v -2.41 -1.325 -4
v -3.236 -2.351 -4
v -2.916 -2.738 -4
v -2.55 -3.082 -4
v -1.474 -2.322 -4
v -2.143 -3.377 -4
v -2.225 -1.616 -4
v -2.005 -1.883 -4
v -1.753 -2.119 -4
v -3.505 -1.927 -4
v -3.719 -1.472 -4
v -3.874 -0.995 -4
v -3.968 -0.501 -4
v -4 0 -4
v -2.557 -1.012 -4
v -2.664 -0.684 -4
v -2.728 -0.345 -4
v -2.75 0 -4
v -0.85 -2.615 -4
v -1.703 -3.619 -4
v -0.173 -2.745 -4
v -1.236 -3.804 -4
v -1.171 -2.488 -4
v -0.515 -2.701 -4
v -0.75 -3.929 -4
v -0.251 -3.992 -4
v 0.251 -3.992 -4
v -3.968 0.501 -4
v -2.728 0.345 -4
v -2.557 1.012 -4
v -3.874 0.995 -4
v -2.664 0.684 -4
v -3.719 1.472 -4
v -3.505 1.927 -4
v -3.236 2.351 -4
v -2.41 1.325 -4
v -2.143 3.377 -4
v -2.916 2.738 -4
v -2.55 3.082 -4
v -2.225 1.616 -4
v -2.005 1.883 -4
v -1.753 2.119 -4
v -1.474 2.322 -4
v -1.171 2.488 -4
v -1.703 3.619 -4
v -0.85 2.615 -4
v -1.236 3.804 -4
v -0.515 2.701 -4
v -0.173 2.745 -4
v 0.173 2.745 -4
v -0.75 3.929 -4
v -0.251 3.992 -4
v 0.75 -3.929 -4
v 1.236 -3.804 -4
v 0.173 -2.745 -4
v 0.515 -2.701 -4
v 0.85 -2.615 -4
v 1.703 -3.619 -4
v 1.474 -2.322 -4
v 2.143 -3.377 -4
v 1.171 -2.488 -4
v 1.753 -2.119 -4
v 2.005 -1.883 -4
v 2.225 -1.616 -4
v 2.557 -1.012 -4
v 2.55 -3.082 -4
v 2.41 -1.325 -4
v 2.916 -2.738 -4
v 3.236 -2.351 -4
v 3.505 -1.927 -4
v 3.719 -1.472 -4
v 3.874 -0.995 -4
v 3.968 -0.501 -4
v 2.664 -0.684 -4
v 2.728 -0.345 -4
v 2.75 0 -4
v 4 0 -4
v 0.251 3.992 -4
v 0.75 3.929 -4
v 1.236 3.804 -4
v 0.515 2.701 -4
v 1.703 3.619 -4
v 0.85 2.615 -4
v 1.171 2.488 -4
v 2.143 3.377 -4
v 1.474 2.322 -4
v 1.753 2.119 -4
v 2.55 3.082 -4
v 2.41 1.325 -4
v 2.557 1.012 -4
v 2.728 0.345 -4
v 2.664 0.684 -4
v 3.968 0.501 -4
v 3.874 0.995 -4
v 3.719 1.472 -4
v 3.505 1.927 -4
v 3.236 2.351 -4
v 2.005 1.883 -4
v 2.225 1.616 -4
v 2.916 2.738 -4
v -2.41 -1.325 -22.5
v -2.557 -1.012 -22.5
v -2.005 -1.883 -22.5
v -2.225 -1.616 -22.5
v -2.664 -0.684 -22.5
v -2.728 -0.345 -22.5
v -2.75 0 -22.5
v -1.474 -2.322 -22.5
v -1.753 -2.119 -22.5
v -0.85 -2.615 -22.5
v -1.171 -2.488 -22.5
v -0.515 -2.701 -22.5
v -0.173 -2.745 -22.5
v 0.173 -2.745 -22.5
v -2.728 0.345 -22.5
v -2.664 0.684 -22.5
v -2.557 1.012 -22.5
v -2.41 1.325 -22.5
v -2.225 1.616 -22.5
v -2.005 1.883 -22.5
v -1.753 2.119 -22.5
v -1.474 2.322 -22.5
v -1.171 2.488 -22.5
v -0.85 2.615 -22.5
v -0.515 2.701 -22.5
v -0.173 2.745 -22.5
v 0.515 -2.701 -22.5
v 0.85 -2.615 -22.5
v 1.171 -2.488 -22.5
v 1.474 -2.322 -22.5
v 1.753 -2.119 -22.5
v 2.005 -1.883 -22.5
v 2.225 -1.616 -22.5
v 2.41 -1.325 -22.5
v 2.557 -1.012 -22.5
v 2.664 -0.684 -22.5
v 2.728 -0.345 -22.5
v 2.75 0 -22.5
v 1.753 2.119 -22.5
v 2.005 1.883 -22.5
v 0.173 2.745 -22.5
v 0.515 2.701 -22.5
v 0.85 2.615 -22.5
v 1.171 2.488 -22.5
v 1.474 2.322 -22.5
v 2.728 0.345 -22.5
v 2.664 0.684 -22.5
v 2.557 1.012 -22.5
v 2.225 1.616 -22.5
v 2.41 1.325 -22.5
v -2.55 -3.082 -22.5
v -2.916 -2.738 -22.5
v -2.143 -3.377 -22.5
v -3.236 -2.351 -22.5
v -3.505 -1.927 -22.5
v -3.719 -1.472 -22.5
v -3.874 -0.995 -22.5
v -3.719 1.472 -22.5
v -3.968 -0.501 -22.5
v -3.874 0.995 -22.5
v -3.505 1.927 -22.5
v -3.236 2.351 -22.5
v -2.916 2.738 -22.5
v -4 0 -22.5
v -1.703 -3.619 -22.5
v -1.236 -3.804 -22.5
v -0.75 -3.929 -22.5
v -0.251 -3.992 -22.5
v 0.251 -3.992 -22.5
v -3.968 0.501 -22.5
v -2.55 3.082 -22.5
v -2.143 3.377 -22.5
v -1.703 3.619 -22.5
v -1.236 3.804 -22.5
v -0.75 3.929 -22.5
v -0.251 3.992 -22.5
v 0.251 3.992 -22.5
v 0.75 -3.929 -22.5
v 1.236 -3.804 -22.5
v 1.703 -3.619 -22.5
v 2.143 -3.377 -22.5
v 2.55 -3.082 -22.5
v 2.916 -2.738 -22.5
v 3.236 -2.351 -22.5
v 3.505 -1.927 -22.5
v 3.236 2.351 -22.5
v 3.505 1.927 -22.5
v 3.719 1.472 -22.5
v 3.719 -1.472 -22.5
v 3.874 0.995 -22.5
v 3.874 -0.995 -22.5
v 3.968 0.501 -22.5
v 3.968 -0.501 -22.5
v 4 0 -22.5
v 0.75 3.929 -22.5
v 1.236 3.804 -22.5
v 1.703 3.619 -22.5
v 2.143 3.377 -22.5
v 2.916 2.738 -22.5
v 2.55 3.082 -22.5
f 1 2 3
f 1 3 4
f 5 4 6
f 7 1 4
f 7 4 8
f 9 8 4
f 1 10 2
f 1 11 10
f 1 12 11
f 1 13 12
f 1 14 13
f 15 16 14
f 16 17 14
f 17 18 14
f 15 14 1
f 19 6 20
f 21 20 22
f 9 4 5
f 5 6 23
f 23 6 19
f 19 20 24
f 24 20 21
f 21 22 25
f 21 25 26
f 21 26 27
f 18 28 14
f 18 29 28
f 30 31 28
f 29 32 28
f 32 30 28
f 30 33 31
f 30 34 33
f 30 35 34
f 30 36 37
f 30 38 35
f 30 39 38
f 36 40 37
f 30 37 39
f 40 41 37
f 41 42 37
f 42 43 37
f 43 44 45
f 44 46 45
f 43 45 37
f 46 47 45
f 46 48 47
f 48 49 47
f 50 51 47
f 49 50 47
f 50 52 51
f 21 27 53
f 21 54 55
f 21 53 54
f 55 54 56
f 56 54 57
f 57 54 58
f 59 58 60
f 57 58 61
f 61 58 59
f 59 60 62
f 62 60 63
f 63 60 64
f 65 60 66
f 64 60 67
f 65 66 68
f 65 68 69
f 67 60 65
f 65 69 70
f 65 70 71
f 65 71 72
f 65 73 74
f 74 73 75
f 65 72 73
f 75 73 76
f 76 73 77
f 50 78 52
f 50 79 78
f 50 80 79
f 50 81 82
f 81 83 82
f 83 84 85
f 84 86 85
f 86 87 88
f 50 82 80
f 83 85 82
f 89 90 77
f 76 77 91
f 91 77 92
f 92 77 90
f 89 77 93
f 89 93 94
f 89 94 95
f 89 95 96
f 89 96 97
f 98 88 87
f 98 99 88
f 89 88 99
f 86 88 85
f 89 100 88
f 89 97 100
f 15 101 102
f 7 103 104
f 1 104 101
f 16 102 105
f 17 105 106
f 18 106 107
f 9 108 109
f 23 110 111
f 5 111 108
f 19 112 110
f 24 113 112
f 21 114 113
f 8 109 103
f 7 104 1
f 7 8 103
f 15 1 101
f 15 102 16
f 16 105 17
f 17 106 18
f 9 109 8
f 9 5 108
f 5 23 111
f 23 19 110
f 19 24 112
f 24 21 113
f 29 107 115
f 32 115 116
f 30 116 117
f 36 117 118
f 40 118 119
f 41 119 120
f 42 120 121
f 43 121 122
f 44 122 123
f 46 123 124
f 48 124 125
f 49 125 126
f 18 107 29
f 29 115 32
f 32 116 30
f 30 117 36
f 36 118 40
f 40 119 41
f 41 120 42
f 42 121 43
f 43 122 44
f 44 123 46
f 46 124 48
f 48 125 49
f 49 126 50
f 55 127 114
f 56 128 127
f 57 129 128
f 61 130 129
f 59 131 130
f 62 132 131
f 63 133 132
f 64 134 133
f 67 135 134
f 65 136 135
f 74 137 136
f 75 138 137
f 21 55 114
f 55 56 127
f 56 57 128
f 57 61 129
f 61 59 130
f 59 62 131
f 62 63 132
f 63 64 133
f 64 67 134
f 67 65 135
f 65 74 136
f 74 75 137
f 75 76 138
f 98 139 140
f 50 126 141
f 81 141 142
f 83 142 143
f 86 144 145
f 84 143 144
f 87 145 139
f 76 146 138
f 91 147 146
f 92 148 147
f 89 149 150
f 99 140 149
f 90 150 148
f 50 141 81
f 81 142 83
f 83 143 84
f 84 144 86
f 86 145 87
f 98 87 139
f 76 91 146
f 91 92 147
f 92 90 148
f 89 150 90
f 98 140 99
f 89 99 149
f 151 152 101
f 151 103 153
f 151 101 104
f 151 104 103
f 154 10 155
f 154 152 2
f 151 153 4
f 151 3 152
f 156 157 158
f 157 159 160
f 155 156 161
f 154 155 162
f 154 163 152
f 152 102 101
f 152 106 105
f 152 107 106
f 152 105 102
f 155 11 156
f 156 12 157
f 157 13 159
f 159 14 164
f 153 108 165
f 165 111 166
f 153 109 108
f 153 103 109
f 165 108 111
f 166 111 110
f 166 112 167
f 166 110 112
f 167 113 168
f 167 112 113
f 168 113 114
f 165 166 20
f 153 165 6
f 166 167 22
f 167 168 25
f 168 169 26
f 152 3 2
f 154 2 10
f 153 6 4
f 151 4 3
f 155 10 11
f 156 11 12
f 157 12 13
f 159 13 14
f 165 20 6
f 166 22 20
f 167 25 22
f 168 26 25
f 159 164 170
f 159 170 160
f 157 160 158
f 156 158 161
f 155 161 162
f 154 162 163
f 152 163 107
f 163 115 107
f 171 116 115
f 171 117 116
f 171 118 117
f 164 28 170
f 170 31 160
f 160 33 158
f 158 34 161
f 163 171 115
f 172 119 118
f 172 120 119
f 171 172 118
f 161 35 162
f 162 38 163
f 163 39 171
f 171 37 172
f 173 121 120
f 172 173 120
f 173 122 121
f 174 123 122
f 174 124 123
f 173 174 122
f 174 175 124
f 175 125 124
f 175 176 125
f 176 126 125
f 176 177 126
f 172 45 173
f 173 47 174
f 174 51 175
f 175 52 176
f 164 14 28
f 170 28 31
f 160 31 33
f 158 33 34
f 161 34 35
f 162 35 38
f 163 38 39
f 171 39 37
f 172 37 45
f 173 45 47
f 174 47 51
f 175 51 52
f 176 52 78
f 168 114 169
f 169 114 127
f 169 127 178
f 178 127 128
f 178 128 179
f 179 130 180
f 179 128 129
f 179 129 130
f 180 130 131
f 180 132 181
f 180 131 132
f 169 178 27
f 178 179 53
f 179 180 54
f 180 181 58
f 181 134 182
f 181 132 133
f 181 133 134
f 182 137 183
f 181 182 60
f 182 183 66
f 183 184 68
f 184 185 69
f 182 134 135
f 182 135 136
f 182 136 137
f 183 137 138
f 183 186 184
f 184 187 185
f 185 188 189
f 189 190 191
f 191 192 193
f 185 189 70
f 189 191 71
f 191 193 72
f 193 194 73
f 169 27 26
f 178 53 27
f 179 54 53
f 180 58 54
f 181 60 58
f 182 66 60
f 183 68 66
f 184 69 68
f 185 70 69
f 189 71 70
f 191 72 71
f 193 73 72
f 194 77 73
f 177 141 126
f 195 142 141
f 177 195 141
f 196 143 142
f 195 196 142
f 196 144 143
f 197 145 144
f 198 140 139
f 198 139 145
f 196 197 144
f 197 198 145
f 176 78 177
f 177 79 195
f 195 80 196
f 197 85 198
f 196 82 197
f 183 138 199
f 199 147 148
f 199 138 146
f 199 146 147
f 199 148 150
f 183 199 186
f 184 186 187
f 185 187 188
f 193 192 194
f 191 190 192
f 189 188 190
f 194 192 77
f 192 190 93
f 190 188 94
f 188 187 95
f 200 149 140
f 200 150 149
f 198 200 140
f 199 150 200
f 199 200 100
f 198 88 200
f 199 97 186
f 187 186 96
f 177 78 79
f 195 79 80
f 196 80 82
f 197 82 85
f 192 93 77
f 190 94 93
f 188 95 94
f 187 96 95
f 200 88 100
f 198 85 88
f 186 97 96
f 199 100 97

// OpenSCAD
$fn = 50;

difference() {
	union() {
		translate(v = [0, 0, -22.5]) {
			cylinder(h = 22.5, r = 4.0);
		}
	}
	union() {
		translate(v = [0, 0, 0]) {
			rotate(a = [0, 0, 0]) {
				difference() {
					union() {
						translate(v = [0, 0, -4]) {
							linear_extrude(height = 4) {
								polygon(points = [[4.8468, 0.0], [2.4234000000000004, 4.197451927062417], [-2.423399999999999, 4.197451927062417], [-4.8468, 5.935618106107392e-16], [-2.423400000000002, -4.197451927062416], [2.423399999999997, -4.197451927062419]]);
							}
						}
					}
					union();
				}
			}
		}
		#translate(v = [0, 0, -100.0]) {
			cylinder(h = 200, r = 2.75);
		}
	}
}
